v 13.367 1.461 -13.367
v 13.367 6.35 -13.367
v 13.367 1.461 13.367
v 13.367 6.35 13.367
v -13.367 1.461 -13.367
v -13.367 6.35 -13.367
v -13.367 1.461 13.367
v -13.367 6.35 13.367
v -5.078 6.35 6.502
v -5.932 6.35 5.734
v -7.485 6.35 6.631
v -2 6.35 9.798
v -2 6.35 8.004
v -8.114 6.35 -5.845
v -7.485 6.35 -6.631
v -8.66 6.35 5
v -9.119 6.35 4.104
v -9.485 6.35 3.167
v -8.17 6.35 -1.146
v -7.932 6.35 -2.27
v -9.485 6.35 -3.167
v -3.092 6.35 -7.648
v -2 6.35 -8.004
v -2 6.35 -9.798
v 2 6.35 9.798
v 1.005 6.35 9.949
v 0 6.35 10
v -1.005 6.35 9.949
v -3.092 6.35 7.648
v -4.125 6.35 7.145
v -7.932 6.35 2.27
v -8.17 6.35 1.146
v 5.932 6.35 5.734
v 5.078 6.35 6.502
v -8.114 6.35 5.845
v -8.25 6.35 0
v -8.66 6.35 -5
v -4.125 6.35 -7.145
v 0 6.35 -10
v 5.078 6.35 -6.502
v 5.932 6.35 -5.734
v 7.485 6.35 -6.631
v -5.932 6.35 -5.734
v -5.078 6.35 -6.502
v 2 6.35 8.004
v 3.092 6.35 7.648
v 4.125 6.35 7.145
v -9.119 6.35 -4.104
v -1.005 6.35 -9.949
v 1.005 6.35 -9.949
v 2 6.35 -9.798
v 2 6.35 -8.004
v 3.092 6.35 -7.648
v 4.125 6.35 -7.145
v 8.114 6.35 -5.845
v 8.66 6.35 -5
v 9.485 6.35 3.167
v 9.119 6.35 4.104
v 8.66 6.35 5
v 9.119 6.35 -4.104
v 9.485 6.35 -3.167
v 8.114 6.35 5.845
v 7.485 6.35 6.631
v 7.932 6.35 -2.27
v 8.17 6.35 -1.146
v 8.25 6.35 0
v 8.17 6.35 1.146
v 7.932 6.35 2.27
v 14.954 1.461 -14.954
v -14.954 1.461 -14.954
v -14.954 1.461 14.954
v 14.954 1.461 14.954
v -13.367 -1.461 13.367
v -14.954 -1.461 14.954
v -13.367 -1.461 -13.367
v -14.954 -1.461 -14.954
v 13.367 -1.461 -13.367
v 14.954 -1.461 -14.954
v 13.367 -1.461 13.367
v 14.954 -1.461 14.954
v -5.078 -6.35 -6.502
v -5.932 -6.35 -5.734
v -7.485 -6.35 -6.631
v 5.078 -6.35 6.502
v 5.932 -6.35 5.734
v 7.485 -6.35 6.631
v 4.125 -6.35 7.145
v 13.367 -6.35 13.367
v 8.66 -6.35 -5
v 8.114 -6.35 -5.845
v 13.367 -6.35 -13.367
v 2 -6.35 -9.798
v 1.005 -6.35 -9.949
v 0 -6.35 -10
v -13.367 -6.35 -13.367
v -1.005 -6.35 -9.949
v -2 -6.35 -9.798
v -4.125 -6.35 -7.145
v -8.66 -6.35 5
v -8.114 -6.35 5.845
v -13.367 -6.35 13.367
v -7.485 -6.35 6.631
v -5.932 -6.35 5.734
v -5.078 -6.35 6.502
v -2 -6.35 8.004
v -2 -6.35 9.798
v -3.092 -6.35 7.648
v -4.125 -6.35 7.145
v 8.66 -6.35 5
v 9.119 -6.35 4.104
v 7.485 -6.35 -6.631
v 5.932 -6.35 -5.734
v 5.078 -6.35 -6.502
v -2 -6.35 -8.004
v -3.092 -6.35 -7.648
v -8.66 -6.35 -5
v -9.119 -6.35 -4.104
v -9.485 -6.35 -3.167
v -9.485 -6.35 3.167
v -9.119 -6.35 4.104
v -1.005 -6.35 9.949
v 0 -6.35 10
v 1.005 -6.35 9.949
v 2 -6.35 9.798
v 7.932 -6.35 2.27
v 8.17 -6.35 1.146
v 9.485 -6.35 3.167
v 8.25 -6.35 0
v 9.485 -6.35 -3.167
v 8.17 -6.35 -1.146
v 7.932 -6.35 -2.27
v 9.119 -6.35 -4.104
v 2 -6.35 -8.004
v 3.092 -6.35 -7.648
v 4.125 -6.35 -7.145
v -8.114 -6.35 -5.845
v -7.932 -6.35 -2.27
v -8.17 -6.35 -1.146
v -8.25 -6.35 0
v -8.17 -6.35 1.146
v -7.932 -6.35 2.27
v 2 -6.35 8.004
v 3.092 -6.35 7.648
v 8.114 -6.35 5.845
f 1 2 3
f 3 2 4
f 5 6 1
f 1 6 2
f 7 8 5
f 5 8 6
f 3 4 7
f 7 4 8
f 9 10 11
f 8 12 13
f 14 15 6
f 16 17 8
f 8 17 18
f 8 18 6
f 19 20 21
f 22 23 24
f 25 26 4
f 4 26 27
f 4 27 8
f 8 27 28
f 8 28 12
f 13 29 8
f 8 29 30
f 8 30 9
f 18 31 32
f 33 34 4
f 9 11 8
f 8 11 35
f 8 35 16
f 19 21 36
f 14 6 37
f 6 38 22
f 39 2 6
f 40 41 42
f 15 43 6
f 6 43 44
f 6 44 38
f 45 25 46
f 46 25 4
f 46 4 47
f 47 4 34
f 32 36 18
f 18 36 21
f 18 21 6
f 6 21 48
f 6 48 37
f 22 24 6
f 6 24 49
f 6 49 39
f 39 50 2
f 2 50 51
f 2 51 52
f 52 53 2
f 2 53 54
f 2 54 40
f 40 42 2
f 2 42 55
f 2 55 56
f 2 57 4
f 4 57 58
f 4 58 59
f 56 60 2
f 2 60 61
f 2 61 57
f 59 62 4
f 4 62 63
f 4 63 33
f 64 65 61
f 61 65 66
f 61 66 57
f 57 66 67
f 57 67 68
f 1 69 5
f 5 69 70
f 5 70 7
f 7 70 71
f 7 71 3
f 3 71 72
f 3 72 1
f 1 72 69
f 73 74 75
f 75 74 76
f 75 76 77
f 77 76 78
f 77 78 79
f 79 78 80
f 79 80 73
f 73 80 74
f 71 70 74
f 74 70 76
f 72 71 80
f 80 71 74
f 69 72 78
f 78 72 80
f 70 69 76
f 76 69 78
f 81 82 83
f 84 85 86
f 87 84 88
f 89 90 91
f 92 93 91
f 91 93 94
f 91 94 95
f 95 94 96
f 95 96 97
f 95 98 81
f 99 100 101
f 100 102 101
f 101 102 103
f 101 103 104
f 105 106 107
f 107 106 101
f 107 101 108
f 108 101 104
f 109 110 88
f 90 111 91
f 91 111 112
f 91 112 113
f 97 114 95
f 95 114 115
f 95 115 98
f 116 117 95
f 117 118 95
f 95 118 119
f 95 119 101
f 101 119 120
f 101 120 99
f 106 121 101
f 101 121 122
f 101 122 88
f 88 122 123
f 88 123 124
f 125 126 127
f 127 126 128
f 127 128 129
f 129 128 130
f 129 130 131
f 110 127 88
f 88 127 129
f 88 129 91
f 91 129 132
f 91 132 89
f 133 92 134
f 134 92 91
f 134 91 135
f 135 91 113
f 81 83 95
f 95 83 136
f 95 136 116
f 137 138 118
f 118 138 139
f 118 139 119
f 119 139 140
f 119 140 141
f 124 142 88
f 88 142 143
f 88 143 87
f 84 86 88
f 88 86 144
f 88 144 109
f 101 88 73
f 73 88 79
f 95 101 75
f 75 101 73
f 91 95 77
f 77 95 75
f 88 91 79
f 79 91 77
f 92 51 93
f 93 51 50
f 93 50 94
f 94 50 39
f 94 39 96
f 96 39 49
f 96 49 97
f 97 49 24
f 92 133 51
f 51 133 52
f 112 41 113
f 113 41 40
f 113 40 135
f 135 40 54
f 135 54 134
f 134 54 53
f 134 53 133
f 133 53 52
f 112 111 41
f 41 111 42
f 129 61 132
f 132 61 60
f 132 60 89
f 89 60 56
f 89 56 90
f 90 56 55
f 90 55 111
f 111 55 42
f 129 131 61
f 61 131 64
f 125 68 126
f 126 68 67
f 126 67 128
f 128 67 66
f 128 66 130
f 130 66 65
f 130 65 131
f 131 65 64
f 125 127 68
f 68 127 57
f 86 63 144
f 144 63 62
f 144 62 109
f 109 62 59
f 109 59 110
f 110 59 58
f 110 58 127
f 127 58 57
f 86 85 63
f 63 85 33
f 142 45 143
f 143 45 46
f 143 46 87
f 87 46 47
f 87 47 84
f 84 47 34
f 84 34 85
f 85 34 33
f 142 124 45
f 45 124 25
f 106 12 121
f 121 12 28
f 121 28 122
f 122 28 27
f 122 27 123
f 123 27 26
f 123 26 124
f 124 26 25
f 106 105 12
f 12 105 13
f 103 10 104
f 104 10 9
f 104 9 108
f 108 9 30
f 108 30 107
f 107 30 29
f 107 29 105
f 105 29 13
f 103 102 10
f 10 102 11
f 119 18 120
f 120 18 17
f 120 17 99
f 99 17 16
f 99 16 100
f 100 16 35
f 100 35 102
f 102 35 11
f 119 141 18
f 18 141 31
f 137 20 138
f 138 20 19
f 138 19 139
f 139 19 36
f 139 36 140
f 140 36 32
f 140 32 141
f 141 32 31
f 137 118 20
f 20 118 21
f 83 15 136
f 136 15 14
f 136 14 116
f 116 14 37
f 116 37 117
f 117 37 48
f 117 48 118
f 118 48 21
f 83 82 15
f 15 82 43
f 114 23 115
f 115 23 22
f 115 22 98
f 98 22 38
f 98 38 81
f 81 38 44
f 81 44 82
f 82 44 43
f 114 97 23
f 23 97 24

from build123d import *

# Parameters (mm, degrees)
SKETCH1_W           = 26.7335
SKETCH1_H           = 26.7335
BOSS_EXTRUDE1_DEPTH = 6.35
SKETCH2_W           = 29.9085
SKETCH2_H           = 29.9085
BOSS_EXTRUDE2_DEPTH = 1.4605
CUT_EXTRUDE1_DEPTH  = 13.7


with BuildPart() as part:
    # Sketch1 → Boss-Extrude1 (new body, symmetric)
    with BuildSketch(Plane(origin=(0, 0, 0), x_dir=(1, 0, 0), z_dir=(0, 1, 0))):
        Rectangle(SKETCH1_W, SKETCH1_H)
    extrude(amount=BOSS_EXTRUDE1_DEPTH, both=True)

    # Sketch2 → Boss-Extrude2 (add, symmetric)
    with BuildSketch(Plane(origin=(0, 0, 0), x_dir=(1, 0, 0), z_dir=(0, 1, 0))):
        Rectangle(SKETCH2_W, SKETCH2_H)
    extrude(amount=BOSS_EXTRUDE2_DEPTH, both=True)

    # Sketch3 → Cut-Extrude1 (cut, through all)
    with BuildSketch(Plane(origin=(0, 6.35, 0), x_dir=(1, 0, 0), z_dir=(0, 1, 0))):
        with BuildLine():
            Line((-2, 9.797958971), (-2, 8.003905297))
            ThreePointArc((-2, 8.003905297), (-4.125, 7.144709581), (-5.931585317, 5.734003456))
            Line((-5.931585317, 5.734003456), (-7.485281374, 6.631030293))
            ThreePointArc((-7.485281374, 6.631030293), (-8.660254038, 5), (-9.485281374, 3.166928678))
            Line((-9.485281374, 3.166928678), (-7.931585317, 2.269901841))
            ThreePointArc((-7.931585317, 2.269901841), (-8.25, 0), (-7.931585317, -2.269901841))
            Line((-7.931585317, -2.269901841), (-9.485281374, -3.166928678))
            ThreePointArc((-9.485281374, -3.166928678), (-8.660254038, -5), (-7.485281374, -6.631030293))
            Line((-7.485281374, -6.631030293), (-5.931585317, -5.734003456))
            ThreePointArc((-5.931585317, -5.734003456), (-4.125, -7.144709581), (-2, -8.003905297))
            Line((-2, -8.003905297), (-2, -9.797958971))
            ThreePointArc((-2, -9.797958971), (0, -10), (2, -9.797958971))
            Line((2, -9.797958971), (2, -8.003905297))
            ThreePointArc((2, -8.003905297), (4.125, -7.144709581), (5.931585317, -5.734003456))
            Line((5.931585317, -5.734003456), (7.485281374, -6.631030293))
            ThreePointArc((7.485281374, -6.631030293), (8.660254038, -5), (9.485281374, -3.166928678))
            Line((9.485281374, -3.166928678), (7.931585317, -2.269901841))
            ThreePointArc((7.931585317, -2.269901841), (8.25, 0), (7.931585317, 2.269901841))
            Line((7.931585317, 2.269901841), (9.485281374, 3.166928678))
            ThreePointArc((9.485281374, 3.166928678), (8.660254038, 5), (7.485281374, 6.631030293))
            Line((7.485281374, 6.631030293), (5.931585317, 5.734003456))
            ThreePointArc((5.931585317, 5.734003456), (4.125, 7.144709581), (2, 8.003905297))
            Line((2, 8.003905297), (2, 9.797958971))
            ThreePointArc((2, 9.797958971), (0, 10), (-2, 9.797958971))
        make_face()
    extrude(amount=-CUT_EXTRUDE1_DEPTH, mode=Mode.SUBTRACT)


solid = part.part
